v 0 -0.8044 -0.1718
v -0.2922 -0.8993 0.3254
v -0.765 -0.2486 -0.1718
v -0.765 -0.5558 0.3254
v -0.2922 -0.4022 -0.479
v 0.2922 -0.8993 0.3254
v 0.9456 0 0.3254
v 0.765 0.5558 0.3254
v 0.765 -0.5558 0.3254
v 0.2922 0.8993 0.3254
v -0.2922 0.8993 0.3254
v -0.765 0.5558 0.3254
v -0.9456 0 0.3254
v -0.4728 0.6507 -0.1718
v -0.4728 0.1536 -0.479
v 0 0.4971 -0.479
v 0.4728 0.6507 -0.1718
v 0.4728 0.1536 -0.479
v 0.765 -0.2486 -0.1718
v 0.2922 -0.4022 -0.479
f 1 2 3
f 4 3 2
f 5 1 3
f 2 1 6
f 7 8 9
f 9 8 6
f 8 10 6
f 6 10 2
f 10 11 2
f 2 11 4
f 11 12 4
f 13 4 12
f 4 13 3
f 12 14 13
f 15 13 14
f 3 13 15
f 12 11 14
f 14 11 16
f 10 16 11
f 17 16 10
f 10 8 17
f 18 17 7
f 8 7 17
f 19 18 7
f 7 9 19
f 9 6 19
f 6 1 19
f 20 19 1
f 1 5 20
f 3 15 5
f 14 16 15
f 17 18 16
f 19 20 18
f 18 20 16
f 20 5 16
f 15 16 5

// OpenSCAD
polyhedron( points = [[-0.292202182153028, -0.899305845620831, 0.325371911475484], [-0.764995244558834, -0.55580157878523, 0.325371911475484], [-0.945586124632368, 5.27814403686047e-11, 0.325371911475484], [-0.764995244409112, 0.555801578842139, 0.325371911475484], [-0.292202182072276, 0.899305845497904, 0.325371911475484], [0.292202182220598, 0.89930584544543, 0.325371911475484], [0.764995244495743, 0.555801578704757, 0.325371911475484], [0.945586124619185, -1.17034782439058e-10, 0.325371911475484], [0.764995244445834, -0.555801578922613, 0.325371911475484], [0.292202182139845, -0.899305845620831, 0.325371911475484], [8.55695176768707e-12, -0.804363601081007, -0.171752133367175], [-0.764995244544509, -0.24856202226111, -0.171752133118436], [-0.472793062193526, 0.650743823016943, -0.171752133390643], [0.472793062321716, 0.650743822914228, -0.171752133390643], [0.764995244376688, -0.248562022545522, -0.171752133390643], [-0.292202182200495, -0.402181800313338, -0.478991689483032], [-0.47279306220496, 0.153619778146129, -0.478991689741497], [4.23091743788141e-11, 0.497124044730625, -0.478991689741497], [0.472793062221999, 0.153619778053115, -0.478991689741497], [0.292202182076634, -0.40218180013653, -0.478991689389773]], faces = [[0, 1, 11, 15, 10], [0, 10, 9], [0, 9, 8, 7, 6, 5, 4, 3, 2, 1], [1, 2, 11], [2, 3, 12, 16, 11], [3, 4, 12], [4, 5, 13, 17, 12], [5, 6, 13], [6, 7, 14, 18, 13], [7, 8, 14], [8, 9, 10, 19, 14], [10, 15, 19], [11, 16, 15], [12, 17, 16], [13, 18, 17], [14, 19, 18], [15, 16, 17, 18, 19]]);
